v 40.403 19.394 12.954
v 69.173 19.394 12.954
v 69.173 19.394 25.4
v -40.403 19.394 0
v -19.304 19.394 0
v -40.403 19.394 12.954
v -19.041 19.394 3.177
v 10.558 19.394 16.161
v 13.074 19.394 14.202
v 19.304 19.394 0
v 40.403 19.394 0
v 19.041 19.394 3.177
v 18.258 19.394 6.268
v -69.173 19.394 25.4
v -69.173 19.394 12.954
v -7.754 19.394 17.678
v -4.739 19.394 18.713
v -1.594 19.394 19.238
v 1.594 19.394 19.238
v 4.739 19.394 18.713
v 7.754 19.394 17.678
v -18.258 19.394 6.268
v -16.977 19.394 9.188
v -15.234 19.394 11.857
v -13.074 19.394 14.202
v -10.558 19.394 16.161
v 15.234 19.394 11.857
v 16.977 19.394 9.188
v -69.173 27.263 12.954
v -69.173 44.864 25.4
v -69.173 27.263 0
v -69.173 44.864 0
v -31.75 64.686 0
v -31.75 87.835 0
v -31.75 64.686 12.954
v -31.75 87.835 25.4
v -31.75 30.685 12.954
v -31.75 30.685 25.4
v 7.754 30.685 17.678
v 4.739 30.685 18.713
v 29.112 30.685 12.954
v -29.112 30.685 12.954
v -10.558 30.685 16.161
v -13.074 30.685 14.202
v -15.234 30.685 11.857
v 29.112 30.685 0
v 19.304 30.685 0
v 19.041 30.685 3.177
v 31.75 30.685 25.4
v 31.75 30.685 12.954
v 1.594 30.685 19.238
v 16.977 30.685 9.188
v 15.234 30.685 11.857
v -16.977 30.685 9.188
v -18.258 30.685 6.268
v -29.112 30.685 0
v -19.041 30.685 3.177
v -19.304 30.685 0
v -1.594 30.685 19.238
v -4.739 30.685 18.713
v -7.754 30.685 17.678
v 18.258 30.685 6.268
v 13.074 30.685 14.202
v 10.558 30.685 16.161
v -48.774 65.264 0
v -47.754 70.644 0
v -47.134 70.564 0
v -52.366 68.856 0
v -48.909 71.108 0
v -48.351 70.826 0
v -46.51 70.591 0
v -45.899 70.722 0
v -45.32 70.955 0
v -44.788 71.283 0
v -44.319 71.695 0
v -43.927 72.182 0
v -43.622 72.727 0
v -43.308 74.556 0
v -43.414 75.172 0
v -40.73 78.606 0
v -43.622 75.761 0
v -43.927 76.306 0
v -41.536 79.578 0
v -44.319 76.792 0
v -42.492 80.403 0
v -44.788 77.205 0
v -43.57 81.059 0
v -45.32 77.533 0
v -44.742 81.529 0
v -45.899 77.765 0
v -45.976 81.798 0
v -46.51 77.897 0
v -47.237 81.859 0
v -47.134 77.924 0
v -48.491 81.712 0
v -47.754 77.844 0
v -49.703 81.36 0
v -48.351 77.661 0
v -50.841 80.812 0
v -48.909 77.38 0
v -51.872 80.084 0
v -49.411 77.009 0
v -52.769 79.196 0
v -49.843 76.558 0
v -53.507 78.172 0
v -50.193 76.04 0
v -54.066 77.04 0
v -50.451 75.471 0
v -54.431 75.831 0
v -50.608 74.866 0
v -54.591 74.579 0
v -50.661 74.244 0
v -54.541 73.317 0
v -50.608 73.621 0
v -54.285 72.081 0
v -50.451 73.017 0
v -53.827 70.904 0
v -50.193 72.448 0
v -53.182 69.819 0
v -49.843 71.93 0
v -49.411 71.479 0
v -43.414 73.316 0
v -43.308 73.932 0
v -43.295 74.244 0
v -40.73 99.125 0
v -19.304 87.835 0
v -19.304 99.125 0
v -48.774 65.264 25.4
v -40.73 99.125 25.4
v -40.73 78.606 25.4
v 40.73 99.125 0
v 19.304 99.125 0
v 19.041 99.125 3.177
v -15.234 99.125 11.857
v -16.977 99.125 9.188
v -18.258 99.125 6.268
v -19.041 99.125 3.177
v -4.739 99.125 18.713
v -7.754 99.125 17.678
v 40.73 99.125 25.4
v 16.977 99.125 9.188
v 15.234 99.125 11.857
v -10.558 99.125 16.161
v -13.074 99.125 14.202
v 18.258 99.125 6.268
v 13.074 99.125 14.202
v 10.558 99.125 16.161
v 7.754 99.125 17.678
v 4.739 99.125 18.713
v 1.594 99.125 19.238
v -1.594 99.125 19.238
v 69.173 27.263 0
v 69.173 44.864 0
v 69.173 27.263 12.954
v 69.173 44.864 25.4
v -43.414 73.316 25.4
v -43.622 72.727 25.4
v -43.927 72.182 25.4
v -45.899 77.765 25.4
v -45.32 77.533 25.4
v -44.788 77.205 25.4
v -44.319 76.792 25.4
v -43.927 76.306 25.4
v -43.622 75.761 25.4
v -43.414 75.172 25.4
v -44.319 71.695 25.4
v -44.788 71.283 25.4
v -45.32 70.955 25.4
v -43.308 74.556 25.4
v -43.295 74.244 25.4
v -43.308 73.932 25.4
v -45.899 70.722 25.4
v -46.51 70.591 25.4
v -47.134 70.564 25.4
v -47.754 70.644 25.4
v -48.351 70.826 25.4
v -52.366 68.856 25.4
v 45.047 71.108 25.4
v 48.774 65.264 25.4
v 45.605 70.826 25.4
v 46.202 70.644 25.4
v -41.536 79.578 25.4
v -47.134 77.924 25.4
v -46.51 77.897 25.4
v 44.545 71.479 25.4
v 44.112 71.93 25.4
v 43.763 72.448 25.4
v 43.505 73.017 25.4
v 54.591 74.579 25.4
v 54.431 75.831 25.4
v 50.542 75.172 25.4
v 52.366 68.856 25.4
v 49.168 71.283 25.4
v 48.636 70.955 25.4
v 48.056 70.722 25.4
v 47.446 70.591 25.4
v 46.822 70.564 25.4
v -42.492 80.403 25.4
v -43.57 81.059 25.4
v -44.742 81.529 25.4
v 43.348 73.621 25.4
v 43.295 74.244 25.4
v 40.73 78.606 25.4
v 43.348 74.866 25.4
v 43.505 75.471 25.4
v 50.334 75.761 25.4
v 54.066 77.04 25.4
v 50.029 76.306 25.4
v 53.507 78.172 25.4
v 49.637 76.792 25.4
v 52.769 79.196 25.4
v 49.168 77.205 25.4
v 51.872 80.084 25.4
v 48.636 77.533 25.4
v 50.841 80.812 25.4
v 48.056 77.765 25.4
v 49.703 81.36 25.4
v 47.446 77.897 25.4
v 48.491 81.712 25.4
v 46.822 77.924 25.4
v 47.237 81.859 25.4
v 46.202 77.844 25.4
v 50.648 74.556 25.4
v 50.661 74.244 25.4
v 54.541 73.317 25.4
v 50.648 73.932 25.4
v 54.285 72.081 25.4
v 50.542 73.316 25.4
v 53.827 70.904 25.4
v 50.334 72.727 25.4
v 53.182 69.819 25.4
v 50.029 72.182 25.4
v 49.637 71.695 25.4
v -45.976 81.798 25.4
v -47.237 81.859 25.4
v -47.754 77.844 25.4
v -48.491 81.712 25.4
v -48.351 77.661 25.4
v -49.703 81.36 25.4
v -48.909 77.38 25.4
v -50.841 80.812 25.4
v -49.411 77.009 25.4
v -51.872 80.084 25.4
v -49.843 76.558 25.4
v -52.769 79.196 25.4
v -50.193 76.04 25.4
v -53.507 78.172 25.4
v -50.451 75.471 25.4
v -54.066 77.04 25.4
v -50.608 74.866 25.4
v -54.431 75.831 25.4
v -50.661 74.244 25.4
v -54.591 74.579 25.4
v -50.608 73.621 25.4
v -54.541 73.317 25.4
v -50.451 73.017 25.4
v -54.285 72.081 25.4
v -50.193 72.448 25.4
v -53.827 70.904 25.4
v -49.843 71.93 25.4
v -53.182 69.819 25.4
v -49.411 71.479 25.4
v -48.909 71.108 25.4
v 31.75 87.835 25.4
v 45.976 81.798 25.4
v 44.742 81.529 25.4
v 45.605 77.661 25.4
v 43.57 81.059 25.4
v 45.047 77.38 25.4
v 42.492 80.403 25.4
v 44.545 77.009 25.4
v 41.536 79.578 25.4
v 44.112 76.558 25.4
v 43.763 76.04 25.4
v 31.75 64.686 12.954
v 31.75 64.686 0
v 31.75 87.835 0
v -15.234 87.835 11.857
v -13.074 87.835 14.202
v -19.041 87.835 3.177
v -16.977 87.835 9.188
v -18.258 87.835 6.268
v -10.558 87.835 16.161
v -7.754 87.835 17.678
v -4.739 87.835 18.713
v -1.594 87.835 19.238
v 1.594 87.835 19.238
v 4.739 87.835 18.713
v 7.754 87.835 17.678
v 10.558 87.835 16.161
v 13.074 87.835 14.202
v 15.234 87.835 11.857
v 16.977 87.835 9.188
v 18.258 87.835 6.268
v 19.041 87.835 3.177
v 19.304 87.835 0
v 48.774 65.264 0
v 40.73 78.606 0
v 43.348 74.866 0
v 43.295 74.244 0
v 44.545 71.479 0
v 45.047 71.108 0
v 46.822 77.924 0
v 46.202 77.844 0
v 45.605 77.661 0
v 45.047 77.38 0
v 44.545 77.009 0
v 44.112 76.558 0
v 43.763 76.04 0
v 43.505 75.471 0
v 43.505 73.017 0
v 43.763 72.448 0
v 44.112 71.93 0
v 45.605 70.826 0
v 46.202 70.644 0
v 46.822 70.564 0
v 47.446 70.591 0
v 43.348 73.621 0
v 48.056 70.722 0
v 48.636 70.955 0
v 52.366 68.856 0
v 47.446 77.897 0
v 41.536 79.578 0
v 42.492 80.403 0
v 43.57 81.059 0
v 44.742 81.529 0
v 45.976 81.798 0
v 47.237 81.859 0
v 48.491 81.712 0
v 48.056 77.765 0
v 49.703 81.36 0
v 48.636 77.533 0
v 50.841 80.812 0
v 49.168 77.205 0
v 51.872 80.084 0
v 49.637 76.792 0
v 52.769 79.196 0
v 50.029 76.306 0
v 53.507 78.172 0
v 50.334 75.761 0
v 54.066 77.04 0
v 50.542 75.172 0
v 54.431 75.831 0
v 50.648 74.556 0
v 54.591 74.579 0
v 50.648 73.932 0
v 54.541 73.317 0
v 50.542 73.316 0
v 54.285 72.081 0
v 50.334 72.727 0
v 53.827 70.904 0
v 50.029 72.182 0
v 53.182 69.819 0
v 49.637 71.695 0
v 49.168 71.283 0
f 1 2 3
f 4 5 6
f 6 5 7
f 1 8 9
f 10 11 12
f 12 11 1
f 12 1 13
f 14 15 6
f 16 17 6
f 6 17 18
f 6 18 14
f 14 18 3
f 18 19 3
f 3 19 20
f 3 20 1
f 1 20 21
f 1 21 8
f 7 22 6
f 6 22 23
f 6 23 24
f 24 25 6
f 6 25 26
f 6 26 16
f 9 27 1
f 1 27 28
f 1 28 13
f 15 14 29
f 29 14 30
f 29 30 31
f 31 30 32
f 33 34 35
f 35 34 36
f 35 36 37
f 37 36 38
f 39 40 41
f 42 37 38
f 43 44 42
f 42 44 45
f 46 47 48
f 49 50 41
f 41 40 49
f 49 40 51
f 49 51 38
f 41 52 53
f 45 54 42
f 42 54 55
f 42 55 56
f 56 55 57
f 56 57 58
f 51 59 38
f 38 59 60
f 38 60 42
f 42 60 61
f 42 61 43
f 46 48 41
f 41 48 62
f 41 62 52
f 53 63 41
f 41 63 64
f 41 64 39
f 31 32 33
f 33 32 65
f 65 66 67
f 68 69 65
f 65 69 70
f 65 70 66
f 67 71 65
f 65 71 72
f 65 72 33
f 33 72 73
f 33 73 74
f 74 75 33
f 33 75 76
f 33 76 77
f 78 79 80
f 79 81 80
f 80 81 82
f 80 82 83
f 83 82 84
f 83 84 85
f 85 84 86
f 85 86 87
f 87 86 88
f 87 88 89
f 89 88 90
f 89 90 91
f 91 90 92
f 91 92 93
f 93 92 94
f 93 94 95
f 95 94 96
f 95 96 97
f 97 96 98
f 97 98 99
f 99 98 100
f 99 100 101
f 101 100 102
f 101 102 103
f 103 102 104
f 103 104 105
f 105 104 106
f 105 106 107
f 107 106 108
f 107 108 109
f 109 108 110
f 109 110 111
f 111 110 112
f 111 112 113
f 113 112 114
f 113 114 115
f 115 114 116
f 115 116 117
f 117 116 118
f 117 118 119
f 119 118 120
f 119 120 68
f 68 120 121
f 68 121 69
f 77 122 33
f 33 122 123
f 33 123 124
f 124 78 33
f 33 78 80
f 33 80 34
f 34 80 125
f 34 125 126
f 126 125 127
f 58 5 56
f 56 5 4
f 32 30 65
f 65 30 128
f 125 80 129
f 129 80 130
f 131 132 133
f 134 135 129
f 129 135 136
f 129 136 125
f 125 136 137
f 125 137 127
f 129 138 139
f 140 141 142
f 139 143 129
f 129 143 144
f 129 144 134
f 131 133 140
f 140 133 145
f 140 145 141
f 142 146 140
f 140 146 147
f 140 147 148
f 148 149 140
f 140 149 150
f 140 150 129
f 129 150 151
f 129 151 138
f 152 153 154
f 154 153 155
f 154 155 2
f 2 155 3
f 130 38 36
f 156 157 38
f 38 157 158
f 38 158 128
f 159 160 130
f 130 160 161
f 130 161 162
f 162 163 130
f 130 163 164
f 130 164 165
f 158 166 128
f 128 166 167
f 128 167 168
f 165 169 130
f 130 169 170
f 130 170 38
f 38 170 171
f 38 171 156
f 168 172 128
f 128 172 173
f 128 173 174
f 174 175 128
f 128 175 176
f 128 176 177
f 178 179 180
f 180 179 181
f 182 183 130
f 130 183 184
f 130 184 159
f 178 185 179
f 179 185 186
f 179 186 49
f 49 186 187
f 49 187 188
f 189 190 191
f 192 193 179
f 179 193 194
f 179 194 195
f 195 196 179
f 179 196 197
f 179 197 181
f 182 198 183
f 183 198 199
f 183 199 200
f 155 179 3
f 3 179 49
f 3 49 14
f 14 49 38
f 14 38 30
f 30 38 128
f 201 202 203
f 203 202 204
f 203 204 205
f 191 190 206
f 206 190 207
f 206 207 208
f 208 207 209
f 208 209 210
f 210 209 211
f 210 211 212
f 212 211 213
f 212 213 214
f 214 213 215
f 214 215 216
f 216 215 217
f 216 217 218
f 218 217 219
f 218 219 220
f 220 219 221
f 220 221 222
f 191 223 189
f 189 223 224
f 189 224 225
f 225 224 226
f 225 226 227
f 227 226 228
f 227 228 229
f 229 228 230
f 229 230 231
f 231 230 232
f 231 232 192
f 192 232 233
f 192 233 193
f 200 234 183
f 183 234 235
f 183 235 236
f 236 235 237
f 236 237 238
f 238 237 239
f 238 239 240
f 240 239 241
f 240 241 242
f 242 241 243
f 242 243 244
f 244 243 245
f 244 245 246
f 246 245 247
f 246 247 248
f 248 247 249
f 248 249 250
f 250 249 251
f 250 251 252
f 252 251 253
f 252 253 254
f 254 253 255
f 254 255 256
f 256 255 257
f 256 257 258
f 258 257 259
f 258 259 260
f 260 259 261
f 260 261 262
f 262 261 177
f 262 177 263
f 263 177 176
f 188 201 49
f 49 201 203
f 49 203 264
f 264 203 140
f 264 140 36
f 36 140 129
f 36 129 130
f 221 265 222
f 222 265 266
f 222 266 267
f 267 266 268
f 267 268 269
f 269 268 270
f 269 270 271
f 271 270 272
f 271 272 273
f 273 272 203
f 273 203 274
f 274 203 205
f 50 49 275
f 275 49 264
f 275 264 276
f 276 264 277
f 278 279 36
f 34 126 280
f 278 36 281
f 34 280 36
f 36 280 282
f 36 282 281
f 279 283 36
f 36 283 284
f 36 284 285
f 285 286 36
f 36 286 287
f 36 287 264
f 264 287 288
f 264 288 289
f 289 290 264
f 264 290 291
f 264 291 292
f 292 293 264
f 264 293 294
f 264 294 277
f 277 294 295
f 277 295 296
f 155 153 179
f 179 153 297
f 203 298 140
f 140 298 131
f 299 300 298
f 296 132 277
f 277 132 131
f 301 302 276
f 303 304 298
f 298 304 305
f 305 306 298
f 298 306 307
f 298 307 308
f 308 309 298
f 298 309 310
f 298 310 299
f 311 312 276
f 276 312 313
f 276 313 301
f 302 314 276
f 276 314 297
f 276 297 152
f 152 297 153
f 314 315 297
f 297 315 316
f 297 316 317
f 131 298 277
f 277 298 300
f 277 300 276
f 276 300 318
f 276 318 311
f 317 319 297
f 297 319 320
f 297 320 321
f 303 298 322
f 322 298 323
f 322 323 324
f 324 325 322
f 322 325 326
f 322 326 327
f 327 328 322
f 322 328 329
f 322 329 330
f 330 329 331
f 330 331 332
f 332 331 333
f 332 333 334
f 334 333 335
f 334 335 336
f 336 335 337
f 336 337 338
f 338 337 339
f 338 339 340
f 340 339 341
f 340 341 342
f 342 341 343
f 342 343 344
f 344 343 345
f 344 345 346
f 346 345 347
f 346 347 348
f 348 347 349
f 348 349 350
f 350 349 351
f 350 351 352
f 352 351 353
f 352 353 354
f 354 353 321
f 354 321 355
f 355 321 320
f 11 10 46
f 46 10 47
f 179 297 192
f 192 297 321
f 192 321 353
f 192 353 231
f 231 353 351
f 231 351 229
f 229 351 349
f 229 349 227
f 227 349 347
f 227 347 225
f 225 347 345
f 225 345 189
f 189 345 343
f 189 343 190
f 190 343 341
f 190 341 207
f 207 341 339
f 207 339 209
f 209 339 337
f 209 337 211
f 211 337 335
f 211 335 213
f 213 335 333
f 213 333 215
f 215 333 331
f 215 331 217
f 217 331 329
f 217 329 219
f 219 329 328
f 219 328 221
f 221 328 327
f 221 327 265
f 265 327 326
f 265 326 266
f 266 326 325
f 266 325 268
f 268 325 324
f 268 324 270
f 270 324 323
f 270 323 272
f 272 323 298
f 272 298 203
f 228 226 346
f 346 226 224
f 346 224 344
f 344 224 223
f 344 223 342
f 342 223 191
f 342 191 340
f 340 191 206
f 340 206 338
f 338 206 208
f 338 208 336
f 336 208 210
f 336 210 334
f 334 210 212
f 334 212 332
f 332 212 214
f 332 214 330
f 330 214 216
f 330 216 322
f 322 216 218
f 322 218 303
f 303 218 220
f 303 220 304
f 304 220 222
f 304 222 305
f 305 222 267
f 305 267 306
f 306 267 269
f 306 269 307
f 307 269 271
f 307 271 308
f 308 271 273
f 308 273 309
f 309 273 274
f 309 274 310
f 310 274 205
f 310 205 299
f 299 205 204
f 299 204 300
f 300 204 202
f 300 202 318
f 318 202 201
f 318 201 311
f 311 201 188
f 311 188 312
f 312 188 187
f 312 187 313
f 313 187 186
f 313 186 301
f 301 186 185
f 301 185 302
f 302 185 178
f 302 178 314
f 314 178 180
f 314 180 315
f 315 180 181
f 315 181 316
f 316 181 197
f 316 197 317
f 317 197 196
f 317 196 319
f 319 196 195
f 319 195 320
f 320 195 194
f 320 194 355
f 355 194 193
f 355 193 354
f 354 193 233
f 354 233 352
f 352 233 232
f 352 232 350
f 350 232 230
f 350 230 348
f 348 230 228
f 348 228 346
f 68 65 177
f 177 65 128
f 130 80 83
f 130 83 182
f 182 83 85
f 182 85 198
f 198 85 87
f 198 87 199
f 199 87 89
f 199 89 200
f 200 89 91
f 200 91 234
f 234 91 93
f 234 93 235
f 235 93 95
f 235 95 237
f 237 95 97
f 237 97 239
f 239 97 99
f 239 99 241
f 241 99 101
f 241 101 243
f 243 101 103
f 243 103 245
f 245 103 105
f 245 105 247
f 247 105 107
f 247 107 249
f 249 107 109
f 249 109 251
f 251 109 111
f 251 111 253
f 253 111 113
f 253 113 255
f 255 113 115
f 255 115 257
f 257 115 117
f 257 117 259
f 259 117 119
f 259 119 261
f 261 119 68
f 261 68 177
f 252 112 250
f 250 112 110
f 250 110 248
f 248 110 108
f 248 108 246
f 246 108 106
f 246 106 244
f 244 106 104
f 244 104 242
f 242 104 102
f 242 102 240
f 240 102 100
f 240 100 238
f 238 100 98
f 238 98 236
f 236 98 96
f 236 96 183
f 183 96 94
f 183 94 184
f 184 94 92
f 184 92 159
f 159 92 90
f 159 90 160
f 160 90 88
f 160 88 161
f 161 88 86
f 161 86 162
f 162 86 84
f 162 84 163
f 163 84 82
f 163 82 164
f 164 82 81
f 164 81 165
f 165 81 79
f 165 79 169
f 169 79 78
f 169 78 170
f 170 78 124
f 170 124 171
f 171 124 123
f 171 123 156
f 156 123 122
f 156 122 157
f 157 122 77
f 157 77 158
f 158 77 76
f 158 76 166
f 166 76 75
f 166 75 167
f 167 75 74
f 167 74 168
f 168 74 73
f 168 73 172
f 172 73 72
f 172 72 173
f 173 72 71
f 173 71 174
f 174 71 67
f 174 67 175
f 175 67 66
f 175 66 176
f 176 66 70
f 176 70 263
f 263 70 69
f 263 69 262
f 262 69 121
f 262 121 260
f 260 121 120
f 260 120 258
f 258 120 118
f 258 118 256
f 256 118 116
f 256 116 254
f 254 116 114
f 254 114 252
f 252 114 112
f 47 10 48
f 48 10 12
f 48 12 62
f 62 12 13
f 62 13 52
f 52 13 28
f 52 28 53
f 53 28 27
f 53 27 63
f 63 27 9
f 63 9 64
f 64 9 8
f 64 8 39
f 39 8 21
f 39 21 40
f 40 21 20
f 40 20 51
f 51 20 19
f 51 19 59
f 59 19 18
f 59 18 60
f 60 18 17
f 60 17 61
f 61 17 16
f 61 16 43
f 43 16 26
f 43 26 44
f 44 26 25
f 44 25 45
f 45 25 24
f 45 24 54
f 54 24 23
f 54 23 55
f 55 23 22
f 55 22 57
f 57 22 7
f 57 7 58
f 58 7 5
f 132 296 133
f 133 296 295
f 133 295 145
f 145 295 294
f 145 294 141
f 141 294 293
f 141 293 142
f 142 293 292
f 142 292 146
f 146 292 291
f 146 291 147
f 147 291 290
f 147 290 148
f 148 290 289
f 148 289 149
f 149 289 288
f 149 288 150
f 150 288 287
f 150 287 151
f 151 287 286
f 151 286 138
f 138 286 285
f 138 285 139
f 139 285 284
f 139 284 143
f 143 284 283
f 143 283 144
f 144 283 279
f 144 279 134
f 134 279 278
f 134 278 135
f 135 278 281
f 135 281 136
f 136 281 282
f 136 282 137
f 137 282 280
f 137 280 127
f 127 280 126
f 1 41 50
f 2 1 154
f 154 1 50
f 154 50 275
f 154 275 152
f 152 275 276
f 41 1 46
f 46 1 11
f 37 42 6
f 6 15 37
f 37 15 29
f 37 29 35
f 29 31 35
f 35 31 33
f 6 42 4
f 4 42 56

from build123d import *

# Parameters (mm, degrees)
SKETCH2_R           = 19.05
BOSS_EXTRUDE1_DEPTH = 152.4
BOSS_EXTRUDE2_DEPTH = 12.7
SKETCH4_W           = 138.346275672
SKETCH4_H           = 79.731841005
BOSS_EXTRUDE3_DEPTH = 50.8
SKETCH5_W           = 63.5
SKETCH5_H           = 57.15
CUT_EXTRUDE1_DEPTH  = 132.116075905
CUT_EXTRUDE2_DEPTH  = 132.116075905
CUT_EXTRUDE3_DEPTH  = 124.514960069
SKETCH9_R           = 3.683
BOSS_EXTRUDE4_DEPTH = 25.4
CLEARANCECUT1_DEPTH = 109.569099969
CLEARANCECUT2_DEPTH = 12.954


with BuildPart() as part:
    # Sketch2 → Boss-Extrude1 (new body)
    with BuildSketch(Plane(origin=(0, 0, 0), x_dir=(1, 0, 0), z_dir=(0, 1, 0))):
        with Locations(Location((0, 0, 0), (0, 0, 90))):
            Circle(SKETCH2_R)
    extrude(amount=BOSS_EXTRUDE1_DEPTH)

    # Sketch3 → Boss-Extrude2 (add, symmetric)
    with BuildSketch(Plane.XY):
        Polygon((-427.750314484, -331.6732), (-409.789802242, -313.712687758), (-391.82929, -331.6732), align=None)
        Polygon((-6.028675512, 90.048438972), (-409.789802242, -313.712687758), (-391.82929, -331.6732), (11.93183673, 72.08792673), align=None)
    boss_extrude2 = extrude(amount=BOSS_EXTRUDE2_DEPTH, both=True)

    # Mirror1: Boss-Extrude2 across plane
    add(boss_extrude2.mirror(Plane(origin=(0, 0, 0), x_dir=(0, 0, 1), z_dir=(1, 0, 0))))


with BuildPart() as body_2:
    # Sketch4 → Boss-Extrude3 (new body)
    with BuildSketch(Plane.XY.offset(25.4)):
        with Locations((0, 59.259567455)):
            Rectangle(SKETCH4_W, SKETCH4_H)
    extrude(amount=-BOSS_EXTRUDE3_DEPTH)

    # Combine1: cut part
    add(part.part, mode=Mode.SUBTRACT)

    # Sketch5 → Cut-Extrude1 (cut, through all)
    with BuildSketch(Plane.XY.offset(25.4)):
        with Locations((0, 59.259567454)):
            Rectangle(SKETCH5_W, SKETCH5_H)
    extrude(amount=-CUT_EXTRUDE1_DEPTH, mode=Mode.SUBTRACT)

    # Sketch6 → Cut-Extrude2 (cut, through all)
    with BuildSketch(Plane.XY.offset(25.4)):
        Polygon((-69.173137836, 99.125487957), (-69.173137836, 44.864488891), (-40.730256121, 73.307370605), (-40.730256121, 99.125487957), align=None)
    cut_extrude2 = extrude(amount=-CUT_EXTRUDE2_DEPTH, mode=Mode.SUBTRACT)

    # Mirror2: Cut-Extrude2 across plane
    add(cut_extrude2.mirror(Plane(origin=(0, 0, 0), x_dir=(0, 0, 1), z_dir=(1, 0, 0))), mode=Mode.SUBTRACT)

    # Sketch8 → Cut-Extrude3 (cut, through all)
    with BuildSketch(Plane.XY):
        Polygon((69.173137836, 19.393646952), (69.173137836, 44.864488891), (40.730256121, 73.307370605), (40.730256121, 99.125487957), (-40.730256121, 99.125487957), (-40.730256121, 73.307370605), (-69.173137836, 44.864488891), (-69.173137836, 19.393646952), align=None)
    extrude(amount=-CUT_EXTRUDE3_DEPTH, mode=Mode.SUBTRACT)

    # Sketch9 → Boss-Extrude4 (add)
    with BuildSketch(Plane(origin=(0, 0, 0), x_dir=(-1, 0, 0), z_dir=(0, 0, -1))):
        with BuildLine():
            Line((-48.773997692, 65.263629035), (-39.369751391, 74.667875336))
            ThreePointArc((-39.369751391, 74.667875336), (-50.088798441, 81.199961636), (-52.36610014, 68.855731483))
            Line((-52.36610014, 68.855731483), (-48.773997692, 65.263629035))
        make_face()
        with Locations((-46.977946468, 74.243885156)):
            Circle(SKETCH9_R, mode=Mode.SUBTRACT)
    boss_extrude4 = extrude(amount=-BOSS_EXTRUDE4_DEPTH)

    # Mirror3: Boss-Extrude4 across plane
    add(boss_extrude4.mirror(Plane(origin=(0, 0, 0), x_dir=(0, 0, 1), z_dir=(1, 0, 0))))

    # Sketch10 → ClearanceCut1 (cut, through all)
    with BuildSketch(Plane.XZ.offset(-19.393646952)):
        with BuildLine():
            Line((-19.05, 0), (-19.304, 0))
            ThreePointArc((-19.304, 0), (0, 19.304), (19.304, 0))
            Line((19.304, 0), (19.05, 0))
            ThreePointArc((19.05, 0), (0, 19.05), (-19.05, 0))
        make_face()
    extrude(amount=-CLEARANCECUT1_DEPTH, mode=Mode.SUBTRACT)

    # Sketch11 → ClearanceCut2 (cut)
    with BuildSketch(Plane(origin=(0, 0, 0), x_dir=(-1, 0, 0), z_dir=(0, 0, -1))):
        Polygon((-69.173137836, 27.263186893), (-29.112312301, 67.324012428), (-29.112312301, 30.684567454), (-40.403232803, 19.393646952), (-69.173137836, 19.393646952), align=None)
    clearancecut2 = extrude(amount=-CLEARANCECUT2_DEPTH, mode=Mode.SUBTRACT)

    # Mirror4: ClearanceCut2 across plane
    add(clearancecut2.mirror(Plane(origin=(0, 0, 0), x_dir=(0, 0, 1), z_dir=(1, 0, 0))), mode=Mode.SUBTRACT)


solid = body_2.part
